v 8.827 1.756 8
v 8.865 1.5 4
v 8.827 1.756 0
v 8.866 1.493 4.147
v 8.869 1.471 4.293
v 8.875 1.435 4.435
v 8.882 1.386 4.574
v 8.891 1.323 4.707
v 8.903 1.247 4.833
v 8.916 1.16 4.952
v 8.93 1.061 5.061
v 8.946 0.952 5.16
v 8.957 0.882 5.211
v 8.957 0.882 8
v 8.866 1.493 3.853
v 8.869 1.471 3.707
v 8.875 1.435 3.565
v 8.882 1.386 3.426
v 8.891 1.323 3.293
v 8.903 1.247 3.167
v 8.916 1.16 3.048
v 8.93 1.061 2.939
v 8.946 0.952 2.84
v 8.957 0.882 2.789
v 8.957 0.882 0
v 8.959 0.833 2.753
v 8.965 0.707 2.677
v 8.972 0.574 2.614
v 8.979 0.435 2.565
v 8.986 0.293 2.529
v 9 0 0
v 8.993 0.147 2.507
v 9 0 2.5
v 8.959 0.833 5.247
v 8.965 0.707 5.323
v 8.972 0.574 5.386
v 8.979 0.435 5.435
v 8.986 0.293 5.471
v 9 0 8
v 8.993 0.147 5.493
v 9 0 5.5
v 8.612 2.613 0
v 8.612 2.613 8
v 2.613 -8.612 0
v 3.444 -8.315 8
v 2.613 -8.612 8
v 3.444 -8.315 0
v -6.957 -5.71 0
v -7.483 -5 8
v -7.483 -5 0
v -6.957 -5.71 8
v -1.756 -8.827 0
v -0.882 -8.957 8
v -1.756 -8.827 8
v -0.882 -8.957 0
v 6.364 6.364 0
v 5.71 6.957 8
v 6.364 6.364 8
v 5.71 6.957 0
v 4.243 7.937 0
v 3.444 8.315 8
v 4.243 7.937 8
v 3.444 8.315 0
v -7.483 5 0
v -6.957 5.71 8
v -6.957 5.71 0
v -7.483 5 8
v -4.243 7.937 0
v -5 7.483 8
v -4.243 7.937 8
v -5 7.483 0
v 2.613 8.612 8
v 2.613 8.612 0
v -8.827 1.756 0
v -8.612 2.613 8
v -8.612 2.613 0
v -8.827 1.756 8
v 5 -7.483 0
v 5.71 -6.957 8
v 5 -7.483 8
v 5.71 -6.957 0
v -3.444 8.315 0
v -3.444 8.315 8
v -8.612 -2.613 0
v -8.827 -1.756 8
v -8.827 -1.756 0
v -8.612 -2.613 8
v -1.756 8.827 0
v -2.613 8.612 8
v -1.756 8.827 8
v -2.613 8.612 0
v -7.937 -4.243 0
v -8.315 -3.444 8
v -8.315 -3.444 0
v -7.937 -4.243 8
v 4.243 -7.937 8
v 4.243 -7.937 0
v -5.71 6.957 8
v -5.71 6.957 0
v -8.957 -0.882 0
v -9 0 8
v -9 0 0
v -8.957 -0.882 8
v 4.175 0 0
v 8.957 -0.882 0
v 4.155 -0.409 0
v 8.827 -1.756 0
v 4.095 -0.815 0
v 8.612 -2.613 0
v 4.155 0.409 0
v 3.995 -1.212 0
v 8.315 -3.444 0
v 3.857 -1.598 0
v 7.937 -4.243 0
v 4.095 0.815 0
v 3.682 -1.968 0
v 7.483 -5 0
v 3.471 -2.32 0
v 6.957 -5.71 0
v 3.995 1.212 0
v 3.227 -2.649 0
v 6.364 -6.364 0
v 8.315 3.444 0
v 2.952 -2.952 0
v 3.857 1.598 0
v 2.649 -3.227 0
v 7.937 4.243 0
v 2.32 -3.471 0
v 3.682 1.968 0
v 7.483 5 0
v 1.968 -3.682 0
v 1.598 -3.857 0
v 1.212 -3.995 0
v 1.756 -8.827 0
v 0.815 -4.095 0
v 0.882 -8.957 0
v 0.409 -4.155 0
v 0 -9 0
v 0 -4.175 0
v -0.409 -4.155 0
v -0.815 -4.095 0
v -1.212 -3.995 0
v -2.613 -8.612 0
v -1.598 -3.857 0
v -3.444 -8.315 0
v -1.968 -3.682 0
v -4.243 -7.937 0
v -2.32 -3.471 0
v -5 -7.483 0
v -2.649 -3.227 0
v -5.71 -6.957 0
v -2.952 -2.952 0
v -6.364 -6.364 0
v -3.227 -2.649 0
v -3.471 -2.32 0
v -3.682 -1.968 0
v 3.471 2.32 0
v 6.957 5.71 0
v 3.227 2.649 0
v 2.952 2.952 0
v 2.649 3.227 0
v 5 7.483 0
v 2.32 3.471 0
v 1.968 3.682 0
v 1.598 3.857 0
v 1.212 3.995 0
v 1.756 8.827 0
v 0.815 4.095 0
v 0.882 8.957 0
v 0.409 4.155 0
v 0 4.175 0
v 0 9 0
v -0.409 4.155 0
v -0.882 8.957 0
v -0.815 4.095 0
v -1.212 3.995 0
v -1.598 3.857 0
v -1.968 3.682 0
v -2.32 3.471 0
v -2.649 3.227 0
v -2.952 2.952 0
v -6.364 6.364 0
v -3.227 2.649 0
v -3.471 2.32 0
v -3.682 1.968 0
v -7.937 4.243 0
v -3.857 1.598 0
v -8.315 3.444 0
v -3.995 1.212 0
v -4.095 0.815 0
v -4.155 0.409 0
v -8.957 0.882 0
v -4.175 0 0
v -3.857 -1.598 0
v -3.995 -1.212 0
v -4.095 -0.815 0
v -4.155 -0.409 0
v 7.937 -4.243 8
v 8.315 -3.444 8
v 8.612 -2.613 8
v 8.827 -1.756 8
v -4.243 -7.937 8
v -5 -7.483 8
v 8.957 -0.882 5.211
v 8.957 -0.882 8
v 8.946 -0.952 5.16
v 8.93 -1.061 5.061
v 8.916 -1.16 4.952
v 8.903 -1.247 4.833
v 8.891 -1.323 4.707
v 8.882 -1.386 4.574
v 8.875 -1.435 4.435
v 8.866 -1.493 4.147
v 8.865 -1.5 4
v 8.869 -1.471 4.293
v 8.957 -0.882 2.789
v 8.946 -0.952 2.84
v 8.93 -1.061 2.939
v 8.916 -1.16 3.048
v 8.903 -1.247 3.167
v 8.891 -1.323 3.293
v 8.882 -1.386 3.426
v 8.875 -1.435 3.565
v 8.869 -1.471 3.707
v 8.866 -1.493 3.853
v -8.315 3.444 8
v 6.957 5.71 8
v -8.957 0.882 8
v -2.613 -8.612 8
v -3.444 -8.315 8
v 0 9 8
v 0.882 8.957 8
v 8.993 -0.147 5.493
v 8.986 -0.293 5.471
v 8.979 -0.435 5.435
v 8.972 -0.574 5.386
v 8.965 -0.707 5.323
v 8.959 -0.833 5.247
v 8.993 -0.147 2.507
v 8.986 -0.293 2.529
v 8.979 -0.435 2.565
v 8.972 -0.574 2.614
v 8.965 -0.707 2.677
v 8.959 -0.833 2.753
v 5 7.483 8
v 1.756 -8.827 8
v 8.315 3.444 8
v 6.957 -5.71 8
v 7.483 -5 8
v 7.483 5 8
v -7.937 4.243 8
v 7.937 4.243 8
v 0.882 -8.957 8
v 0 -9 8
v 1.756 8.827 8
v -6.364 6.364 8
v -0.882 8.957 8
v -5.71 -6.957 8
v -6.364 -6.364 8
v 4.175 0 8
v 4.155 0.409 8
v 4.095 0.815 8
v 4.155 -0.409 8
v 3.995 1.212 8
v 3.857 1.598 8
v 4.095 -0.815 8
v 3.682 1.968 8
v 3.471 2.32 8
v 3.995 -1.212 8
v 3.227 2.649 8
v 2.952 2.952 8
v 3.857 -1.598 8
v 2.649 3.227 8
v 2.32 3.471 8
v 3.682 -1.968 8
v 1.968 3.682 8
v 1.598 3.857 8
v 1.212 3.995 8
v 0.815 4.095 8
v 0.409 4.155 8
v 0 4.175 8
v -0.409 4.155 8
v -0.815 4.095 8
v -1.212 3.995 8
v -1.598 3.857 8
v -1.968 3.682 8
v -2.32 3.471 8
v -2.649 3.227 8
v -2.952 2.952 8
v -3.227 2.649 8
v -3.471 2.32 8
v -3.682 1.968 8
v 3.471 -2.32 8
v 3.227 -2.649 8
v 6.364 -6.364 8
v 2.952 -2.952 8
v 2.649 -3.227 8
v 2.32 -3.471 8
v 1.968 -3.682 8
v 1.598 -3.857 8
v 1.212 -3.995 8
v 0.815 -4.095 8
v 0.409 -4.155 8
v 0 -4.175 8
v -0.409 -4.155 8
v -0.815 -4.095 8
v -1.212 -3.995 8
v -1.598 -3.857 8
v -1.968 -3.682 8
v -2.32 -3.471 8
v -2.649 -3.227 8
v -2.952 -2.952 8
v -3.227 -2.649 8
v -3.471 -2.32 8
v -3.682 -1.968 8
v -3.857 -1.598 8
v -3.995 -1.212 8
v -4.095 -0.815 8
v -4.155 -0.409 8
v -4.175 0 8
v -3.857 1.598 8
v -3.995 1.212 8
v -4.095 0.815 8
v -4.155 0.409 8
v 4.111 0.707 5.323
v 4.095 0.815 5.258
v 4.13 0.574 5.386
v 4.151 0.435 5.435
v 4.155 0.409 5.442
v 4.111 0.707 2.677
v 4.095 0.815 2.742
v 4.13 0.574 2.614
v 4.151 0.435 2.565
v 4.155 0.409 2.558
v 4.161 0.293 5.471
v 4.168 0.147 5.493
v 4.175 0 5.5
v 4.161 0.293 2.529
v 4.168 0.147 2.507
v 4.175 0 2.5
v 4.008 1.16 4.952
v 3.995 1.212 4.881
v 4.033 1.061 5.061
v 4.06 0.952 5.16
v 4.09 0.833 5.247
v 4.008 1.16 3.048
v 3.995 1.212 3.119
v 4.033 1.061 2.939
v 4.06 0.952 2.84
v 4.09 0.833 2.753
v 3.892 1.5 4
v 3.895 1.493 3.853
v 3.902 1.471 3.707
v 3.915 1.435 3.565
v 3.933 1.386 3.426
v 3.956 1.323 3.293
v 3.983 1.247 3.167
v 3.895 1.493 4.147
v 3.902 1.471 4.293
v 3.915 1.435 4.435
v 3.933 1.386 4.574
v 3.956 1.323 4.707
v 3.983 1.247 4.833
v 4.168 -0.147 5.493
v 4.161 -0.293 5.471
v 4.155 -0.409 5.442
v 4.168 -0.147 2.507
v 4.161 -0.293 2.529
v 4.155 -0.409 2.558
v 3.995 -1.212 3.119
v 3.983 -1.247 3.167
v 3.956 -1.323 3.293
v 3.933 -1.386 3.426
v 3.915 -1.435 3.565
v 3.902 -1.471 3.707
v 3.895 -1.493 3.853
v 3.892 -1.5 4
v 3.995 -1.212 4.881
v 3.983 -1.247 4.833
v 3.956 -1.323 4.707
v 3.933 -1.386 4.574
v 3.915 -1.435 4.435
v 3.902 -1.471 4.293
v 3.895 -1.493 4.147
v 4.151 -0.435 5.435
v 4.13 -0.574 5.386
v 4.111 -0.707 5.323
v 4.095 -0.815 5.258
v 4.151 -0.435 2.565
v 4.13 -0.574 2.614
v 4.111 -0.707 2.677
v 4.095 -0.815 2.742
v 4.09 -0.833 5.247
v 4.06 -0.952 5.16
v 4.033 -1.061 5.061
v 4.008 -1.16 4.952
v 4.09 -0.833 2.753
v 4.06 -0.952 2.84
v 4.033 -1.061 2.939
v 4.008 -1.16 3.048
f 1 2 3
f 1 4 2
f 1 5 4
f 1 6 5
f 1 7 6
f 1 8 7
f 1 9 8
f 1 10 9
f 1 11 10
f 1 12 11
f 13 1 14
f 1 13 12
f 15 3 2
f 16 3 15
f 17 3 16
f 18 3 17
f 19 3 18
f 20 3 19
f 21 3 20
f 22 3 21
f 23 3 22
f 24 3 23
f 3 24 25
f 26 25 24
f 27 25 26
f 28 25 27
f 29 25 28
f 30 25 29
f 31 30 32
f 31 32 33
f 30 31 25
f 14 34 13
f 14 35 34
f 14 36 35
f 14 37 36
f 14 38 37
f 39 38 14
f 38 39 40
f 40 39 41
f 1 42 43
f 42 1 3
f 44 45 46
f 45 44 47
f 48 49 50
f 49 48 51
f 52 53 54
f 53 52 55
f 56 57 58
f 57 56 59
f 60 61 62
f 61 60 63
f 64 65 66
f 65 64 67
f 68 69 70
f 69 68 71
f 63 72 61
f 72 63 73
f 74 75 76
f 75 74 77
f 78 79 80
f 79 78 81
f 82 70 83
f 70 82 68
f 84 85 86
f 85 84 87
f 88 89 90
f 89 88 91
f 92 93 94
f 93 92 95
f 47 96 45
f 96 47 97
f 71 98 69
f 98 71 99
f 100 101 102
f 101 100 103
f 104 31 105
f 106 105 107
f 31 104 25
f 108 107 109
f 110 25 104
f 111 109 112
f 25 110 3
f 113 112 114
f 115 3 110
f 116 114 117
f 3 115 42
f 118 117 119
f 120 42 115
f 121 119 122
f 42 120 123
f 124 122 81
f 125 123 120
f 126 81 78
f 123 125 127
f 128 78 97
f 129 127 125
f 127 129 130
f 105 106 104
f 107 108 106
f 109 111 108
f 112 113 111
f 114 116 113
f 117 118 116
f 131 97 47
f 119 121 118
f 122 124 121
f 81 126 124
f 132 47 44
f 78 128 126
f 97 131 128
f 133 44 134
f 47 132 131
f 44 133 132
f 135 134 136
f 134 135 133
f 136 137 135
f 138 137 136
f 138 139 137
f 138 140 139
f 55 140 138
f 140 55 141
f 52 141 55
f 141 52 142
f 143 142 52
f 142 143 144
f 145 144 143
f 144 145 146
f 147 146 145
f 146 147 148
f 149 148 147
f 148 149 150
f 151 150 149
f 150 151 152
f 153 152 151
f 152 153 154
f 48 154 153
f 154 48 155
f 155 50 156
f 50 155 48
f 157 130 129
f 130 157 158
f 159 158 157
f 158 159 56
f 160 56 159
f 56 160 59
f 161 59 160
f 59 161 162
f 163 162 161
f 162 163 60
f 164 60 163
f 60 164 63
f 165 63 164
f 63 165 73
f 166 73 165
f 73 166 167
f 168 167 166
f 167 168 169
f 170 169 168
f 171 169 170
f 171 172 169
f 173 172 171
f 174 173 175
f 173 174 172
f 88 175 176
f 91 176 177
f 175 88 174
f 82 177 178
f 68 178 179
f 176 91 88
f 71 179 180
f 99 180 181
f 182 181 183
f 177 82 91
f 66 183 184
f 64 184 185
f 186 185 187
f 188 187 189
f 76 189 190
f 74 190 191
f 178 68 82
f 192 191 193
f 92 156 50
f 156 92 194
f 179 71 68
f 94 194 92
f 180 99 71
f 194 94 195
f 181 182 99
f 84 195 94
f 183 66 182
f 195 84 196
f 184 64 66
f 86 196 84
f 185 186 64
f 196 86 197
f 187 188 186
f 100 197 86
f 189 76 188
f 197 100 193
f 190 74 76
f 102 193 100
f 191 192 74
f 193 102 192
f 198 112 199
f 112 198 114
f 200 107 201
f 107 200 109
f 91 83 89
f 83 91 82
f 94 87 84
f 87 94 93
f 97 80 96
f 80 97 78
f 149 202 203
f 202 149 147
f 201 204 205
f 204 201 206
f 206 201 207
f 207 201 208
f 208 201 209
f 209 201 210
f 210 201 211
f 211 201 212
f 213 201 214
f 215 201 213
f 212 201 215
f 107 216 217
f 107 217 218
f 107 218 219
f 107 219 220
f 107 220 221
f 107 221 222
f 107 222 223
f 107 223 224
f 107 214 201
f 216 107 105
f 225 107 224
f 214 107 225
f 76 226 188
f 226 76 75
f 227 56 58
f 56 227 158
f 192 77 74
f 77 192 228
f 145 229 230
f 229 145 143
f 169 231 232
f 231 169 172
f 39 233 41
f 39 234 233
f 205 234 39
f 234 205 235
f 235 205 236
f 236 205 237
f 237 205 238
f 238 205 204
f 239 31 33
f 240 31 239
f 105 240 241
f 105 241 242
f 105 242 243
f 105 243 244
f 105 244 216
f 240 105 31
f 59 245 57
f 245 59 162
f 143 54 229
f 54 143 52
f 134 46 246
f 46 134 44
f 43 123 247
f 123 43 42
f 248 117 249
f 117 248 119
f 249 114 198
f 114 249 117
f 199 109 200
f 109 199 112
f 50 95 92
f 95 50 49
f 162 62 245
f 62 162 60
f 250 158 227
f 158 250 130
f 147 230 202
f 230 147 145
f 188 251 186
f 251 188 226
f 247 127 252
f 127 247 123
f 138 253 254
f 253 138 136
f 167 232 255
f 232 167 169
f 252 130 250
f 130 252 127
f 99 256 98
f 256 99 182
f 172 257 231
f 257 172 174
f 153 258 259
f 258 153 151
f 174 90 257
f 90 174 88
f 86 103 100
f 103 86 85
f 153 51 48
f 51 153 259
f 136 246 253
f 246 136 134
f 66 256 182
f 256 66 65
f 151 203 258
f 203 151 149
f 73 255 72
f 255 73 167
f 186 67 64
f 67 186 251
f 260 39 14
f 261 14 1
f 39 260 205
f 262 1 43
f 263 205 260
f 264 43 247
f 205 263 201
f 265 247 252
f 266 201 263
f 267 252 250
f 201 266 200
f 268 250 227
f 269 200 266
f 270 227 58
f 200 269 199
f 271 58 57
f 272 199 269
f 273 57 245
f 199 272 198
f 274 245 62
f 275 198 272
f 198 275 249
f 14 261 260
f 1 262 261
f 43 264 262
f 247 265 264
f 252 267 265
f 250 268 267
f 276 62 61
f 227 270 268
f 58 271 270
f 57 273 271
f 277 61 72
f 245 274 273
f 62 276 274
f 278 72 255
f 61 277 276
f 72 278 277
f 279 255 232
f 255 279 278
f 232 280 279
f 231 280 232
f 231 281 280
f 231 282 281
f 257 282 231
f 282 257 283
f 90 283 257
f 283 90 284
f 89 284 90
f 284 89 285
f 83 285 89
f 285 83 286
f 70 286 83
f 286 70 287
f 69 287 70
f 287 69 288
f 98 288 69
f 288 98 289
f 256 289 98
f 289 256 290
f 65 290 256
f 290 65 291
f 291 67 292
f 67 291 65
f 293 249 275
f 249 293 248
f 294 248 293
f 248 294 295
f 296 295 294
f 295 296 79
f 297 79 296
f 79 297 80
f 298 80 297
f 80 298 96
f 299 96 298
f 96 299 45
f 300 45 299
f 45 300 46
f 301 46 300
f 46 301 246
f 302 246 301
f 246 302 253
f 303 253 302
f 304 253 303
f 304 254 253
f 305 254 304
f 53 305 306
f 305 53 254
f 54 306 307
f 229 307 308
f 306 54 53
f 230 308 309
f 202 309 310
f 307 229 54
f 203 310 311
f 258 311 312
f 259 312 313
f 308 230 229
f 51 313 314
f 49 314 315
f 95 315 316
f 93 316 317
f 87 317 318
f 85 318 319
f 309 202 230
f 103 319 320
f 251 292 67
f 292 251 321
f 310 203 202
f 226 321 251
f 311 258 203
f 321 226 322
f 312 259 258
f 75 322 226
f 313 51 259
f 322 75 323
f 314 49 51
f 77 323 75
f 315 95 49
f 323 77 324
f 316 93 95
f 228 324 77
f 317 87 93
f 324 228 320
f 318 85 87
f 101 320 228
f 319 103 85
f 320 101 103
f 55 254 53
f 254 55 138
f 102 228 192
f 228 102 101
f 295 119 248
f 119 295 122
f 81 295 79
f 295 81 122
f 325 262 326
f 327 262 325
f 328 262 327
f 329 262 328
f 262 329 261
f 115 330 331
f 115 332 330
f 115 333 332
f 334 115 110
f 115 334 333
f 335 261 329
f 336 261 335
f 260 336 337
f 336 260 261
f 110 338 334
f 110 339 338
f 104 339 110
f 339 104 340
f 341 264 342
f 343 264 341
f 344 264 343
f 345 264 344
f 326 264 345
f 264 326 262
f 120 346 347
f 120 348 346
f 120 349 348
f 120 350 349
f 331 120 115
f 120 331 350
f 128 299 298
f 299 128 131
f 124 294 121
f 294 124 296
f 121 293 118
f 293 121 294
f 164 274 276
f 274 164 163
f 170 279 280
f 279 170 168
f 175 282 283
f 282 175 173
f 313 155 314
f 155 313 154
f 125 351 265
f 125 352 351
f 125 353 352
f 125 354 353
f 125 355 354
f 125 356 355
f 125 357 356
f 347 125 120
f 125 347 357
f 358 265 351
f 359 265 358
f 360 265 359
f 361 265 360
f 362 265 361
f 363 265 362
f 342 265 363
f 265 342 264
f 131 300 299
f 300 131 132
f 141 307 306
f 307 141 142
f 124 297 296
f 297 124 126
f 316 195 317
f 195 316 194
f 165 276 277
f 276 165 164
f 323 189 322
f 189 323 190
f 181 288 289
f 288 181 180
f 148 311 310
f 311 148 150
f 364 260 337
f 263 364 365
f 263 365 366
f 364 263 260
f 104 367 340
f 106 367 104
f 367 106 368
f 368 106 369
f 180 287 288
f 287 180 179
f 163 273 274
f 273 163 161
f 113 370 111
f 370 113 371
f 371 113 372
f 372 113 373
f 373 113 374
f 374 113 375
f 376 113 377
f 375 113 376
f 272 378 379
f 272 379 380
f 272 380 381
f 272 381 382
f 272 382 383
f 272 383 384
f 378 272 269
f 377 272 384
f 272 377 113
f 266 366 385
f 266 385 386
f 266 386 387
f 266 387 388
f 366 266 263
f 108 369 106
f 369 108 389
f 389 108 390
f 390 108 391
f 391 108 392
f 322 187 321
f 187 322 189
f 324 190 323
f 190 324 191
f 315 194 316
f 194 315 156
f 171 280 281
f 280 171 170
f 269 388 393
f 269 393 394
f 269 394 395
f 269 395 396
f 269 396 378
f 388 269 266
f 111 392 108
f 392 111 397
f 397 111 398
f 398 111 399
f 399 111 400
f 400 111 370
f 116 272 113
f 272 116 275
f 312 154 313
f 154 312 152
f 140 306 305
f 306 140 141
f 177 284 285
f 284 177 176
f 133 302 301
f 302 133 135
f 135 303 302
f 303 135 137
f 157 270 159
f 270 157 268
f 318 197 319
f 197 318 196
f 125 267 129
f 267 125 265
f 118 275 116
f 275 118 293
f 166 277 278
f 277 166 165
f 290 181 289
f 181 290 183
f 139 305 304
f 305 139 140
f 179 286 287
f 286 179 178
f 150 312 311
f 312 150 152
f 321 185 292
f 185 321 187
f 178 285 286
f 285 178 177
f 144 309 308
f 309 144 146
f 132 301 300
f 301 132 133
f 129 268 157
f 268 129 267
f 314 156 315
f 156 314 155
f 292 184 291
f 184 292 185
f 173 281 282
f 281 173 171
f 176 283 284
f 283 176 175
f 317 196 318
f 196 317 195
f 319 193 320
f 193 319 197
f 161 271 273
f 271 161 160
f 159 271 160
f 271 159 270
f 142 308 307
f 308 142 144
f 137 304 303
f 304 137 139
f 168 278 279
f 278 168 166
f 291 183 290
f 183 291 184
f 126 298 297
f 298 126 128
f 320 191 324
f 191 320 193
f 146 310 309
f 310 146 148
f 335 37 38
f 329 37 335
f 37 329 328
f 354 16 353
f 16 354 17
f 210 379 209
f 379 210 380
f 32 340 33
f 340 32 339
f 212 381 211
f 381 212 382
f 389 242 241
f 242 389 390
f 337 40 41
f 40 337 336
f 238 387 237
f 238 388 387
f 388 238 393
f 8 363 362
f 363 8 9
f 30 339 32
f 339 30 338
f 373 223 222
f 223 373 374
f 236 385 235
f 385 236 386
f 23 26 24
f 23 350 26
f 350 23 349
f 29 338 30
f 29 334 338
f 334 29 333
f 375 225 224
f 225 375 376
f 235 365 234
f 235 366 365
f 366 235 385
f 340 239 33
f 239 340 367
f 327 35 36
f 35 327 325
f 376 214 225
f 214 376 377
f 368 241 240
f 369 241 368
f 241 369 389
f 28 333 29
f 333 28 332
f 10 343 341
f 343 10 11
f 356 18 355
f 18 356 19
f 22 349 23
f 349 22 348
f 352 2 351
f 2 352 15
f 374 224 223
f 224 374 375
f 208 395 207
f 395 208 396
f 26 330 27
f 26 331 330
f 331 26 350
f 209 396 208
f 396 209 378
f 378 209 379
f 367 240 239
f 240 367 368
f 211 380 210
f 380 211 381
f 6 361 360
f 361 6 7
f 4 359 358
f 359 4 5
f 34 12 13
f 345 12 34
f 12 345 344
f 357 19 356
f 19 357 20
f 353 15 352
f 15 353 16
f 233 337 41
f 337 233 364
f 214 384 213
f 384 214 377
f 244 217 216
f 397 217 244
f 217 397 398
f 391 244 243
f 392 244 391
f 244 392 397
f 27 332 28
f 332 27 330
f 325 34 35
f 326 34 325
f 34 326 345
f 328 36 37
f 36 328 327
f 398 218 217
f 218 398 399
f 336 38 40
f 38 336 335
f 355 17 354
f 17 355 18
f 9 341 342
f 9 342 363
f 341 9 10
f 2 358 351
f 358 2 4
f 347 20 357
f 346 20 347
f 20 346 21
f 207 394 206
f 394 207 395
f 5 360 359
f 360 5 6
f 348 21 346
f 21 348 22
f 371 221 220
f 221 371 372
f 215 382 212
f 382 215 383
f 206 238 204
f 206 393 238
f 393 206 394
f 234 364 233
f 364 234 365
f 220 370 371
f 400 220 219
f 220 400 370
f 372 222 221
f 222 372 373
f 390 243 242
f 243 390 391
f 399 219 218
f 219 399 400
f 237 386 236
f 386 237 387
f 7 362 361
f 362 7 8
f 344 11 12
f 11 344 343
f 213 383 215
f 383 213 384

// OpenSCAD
// Shaft collar / spacer — locks rotor axial position on Ø8 shaft

/* ===== named parameters ===== */
od          = 18.0;
id          = 8.35;
h           = 8.0;
set_screw_d = 3.0;   // M3 tap drill / clear for set screw
$fn = 64;

difference() {
    cylinder(d=od, h=h);
    translate([0, 0, -0.1]) cylinder(d=id, h=h + 1);
    translate([0, 0, h/2]) rotate([0, 90, 0])
        cylinder(d=set_screw_d, h=od);
}
